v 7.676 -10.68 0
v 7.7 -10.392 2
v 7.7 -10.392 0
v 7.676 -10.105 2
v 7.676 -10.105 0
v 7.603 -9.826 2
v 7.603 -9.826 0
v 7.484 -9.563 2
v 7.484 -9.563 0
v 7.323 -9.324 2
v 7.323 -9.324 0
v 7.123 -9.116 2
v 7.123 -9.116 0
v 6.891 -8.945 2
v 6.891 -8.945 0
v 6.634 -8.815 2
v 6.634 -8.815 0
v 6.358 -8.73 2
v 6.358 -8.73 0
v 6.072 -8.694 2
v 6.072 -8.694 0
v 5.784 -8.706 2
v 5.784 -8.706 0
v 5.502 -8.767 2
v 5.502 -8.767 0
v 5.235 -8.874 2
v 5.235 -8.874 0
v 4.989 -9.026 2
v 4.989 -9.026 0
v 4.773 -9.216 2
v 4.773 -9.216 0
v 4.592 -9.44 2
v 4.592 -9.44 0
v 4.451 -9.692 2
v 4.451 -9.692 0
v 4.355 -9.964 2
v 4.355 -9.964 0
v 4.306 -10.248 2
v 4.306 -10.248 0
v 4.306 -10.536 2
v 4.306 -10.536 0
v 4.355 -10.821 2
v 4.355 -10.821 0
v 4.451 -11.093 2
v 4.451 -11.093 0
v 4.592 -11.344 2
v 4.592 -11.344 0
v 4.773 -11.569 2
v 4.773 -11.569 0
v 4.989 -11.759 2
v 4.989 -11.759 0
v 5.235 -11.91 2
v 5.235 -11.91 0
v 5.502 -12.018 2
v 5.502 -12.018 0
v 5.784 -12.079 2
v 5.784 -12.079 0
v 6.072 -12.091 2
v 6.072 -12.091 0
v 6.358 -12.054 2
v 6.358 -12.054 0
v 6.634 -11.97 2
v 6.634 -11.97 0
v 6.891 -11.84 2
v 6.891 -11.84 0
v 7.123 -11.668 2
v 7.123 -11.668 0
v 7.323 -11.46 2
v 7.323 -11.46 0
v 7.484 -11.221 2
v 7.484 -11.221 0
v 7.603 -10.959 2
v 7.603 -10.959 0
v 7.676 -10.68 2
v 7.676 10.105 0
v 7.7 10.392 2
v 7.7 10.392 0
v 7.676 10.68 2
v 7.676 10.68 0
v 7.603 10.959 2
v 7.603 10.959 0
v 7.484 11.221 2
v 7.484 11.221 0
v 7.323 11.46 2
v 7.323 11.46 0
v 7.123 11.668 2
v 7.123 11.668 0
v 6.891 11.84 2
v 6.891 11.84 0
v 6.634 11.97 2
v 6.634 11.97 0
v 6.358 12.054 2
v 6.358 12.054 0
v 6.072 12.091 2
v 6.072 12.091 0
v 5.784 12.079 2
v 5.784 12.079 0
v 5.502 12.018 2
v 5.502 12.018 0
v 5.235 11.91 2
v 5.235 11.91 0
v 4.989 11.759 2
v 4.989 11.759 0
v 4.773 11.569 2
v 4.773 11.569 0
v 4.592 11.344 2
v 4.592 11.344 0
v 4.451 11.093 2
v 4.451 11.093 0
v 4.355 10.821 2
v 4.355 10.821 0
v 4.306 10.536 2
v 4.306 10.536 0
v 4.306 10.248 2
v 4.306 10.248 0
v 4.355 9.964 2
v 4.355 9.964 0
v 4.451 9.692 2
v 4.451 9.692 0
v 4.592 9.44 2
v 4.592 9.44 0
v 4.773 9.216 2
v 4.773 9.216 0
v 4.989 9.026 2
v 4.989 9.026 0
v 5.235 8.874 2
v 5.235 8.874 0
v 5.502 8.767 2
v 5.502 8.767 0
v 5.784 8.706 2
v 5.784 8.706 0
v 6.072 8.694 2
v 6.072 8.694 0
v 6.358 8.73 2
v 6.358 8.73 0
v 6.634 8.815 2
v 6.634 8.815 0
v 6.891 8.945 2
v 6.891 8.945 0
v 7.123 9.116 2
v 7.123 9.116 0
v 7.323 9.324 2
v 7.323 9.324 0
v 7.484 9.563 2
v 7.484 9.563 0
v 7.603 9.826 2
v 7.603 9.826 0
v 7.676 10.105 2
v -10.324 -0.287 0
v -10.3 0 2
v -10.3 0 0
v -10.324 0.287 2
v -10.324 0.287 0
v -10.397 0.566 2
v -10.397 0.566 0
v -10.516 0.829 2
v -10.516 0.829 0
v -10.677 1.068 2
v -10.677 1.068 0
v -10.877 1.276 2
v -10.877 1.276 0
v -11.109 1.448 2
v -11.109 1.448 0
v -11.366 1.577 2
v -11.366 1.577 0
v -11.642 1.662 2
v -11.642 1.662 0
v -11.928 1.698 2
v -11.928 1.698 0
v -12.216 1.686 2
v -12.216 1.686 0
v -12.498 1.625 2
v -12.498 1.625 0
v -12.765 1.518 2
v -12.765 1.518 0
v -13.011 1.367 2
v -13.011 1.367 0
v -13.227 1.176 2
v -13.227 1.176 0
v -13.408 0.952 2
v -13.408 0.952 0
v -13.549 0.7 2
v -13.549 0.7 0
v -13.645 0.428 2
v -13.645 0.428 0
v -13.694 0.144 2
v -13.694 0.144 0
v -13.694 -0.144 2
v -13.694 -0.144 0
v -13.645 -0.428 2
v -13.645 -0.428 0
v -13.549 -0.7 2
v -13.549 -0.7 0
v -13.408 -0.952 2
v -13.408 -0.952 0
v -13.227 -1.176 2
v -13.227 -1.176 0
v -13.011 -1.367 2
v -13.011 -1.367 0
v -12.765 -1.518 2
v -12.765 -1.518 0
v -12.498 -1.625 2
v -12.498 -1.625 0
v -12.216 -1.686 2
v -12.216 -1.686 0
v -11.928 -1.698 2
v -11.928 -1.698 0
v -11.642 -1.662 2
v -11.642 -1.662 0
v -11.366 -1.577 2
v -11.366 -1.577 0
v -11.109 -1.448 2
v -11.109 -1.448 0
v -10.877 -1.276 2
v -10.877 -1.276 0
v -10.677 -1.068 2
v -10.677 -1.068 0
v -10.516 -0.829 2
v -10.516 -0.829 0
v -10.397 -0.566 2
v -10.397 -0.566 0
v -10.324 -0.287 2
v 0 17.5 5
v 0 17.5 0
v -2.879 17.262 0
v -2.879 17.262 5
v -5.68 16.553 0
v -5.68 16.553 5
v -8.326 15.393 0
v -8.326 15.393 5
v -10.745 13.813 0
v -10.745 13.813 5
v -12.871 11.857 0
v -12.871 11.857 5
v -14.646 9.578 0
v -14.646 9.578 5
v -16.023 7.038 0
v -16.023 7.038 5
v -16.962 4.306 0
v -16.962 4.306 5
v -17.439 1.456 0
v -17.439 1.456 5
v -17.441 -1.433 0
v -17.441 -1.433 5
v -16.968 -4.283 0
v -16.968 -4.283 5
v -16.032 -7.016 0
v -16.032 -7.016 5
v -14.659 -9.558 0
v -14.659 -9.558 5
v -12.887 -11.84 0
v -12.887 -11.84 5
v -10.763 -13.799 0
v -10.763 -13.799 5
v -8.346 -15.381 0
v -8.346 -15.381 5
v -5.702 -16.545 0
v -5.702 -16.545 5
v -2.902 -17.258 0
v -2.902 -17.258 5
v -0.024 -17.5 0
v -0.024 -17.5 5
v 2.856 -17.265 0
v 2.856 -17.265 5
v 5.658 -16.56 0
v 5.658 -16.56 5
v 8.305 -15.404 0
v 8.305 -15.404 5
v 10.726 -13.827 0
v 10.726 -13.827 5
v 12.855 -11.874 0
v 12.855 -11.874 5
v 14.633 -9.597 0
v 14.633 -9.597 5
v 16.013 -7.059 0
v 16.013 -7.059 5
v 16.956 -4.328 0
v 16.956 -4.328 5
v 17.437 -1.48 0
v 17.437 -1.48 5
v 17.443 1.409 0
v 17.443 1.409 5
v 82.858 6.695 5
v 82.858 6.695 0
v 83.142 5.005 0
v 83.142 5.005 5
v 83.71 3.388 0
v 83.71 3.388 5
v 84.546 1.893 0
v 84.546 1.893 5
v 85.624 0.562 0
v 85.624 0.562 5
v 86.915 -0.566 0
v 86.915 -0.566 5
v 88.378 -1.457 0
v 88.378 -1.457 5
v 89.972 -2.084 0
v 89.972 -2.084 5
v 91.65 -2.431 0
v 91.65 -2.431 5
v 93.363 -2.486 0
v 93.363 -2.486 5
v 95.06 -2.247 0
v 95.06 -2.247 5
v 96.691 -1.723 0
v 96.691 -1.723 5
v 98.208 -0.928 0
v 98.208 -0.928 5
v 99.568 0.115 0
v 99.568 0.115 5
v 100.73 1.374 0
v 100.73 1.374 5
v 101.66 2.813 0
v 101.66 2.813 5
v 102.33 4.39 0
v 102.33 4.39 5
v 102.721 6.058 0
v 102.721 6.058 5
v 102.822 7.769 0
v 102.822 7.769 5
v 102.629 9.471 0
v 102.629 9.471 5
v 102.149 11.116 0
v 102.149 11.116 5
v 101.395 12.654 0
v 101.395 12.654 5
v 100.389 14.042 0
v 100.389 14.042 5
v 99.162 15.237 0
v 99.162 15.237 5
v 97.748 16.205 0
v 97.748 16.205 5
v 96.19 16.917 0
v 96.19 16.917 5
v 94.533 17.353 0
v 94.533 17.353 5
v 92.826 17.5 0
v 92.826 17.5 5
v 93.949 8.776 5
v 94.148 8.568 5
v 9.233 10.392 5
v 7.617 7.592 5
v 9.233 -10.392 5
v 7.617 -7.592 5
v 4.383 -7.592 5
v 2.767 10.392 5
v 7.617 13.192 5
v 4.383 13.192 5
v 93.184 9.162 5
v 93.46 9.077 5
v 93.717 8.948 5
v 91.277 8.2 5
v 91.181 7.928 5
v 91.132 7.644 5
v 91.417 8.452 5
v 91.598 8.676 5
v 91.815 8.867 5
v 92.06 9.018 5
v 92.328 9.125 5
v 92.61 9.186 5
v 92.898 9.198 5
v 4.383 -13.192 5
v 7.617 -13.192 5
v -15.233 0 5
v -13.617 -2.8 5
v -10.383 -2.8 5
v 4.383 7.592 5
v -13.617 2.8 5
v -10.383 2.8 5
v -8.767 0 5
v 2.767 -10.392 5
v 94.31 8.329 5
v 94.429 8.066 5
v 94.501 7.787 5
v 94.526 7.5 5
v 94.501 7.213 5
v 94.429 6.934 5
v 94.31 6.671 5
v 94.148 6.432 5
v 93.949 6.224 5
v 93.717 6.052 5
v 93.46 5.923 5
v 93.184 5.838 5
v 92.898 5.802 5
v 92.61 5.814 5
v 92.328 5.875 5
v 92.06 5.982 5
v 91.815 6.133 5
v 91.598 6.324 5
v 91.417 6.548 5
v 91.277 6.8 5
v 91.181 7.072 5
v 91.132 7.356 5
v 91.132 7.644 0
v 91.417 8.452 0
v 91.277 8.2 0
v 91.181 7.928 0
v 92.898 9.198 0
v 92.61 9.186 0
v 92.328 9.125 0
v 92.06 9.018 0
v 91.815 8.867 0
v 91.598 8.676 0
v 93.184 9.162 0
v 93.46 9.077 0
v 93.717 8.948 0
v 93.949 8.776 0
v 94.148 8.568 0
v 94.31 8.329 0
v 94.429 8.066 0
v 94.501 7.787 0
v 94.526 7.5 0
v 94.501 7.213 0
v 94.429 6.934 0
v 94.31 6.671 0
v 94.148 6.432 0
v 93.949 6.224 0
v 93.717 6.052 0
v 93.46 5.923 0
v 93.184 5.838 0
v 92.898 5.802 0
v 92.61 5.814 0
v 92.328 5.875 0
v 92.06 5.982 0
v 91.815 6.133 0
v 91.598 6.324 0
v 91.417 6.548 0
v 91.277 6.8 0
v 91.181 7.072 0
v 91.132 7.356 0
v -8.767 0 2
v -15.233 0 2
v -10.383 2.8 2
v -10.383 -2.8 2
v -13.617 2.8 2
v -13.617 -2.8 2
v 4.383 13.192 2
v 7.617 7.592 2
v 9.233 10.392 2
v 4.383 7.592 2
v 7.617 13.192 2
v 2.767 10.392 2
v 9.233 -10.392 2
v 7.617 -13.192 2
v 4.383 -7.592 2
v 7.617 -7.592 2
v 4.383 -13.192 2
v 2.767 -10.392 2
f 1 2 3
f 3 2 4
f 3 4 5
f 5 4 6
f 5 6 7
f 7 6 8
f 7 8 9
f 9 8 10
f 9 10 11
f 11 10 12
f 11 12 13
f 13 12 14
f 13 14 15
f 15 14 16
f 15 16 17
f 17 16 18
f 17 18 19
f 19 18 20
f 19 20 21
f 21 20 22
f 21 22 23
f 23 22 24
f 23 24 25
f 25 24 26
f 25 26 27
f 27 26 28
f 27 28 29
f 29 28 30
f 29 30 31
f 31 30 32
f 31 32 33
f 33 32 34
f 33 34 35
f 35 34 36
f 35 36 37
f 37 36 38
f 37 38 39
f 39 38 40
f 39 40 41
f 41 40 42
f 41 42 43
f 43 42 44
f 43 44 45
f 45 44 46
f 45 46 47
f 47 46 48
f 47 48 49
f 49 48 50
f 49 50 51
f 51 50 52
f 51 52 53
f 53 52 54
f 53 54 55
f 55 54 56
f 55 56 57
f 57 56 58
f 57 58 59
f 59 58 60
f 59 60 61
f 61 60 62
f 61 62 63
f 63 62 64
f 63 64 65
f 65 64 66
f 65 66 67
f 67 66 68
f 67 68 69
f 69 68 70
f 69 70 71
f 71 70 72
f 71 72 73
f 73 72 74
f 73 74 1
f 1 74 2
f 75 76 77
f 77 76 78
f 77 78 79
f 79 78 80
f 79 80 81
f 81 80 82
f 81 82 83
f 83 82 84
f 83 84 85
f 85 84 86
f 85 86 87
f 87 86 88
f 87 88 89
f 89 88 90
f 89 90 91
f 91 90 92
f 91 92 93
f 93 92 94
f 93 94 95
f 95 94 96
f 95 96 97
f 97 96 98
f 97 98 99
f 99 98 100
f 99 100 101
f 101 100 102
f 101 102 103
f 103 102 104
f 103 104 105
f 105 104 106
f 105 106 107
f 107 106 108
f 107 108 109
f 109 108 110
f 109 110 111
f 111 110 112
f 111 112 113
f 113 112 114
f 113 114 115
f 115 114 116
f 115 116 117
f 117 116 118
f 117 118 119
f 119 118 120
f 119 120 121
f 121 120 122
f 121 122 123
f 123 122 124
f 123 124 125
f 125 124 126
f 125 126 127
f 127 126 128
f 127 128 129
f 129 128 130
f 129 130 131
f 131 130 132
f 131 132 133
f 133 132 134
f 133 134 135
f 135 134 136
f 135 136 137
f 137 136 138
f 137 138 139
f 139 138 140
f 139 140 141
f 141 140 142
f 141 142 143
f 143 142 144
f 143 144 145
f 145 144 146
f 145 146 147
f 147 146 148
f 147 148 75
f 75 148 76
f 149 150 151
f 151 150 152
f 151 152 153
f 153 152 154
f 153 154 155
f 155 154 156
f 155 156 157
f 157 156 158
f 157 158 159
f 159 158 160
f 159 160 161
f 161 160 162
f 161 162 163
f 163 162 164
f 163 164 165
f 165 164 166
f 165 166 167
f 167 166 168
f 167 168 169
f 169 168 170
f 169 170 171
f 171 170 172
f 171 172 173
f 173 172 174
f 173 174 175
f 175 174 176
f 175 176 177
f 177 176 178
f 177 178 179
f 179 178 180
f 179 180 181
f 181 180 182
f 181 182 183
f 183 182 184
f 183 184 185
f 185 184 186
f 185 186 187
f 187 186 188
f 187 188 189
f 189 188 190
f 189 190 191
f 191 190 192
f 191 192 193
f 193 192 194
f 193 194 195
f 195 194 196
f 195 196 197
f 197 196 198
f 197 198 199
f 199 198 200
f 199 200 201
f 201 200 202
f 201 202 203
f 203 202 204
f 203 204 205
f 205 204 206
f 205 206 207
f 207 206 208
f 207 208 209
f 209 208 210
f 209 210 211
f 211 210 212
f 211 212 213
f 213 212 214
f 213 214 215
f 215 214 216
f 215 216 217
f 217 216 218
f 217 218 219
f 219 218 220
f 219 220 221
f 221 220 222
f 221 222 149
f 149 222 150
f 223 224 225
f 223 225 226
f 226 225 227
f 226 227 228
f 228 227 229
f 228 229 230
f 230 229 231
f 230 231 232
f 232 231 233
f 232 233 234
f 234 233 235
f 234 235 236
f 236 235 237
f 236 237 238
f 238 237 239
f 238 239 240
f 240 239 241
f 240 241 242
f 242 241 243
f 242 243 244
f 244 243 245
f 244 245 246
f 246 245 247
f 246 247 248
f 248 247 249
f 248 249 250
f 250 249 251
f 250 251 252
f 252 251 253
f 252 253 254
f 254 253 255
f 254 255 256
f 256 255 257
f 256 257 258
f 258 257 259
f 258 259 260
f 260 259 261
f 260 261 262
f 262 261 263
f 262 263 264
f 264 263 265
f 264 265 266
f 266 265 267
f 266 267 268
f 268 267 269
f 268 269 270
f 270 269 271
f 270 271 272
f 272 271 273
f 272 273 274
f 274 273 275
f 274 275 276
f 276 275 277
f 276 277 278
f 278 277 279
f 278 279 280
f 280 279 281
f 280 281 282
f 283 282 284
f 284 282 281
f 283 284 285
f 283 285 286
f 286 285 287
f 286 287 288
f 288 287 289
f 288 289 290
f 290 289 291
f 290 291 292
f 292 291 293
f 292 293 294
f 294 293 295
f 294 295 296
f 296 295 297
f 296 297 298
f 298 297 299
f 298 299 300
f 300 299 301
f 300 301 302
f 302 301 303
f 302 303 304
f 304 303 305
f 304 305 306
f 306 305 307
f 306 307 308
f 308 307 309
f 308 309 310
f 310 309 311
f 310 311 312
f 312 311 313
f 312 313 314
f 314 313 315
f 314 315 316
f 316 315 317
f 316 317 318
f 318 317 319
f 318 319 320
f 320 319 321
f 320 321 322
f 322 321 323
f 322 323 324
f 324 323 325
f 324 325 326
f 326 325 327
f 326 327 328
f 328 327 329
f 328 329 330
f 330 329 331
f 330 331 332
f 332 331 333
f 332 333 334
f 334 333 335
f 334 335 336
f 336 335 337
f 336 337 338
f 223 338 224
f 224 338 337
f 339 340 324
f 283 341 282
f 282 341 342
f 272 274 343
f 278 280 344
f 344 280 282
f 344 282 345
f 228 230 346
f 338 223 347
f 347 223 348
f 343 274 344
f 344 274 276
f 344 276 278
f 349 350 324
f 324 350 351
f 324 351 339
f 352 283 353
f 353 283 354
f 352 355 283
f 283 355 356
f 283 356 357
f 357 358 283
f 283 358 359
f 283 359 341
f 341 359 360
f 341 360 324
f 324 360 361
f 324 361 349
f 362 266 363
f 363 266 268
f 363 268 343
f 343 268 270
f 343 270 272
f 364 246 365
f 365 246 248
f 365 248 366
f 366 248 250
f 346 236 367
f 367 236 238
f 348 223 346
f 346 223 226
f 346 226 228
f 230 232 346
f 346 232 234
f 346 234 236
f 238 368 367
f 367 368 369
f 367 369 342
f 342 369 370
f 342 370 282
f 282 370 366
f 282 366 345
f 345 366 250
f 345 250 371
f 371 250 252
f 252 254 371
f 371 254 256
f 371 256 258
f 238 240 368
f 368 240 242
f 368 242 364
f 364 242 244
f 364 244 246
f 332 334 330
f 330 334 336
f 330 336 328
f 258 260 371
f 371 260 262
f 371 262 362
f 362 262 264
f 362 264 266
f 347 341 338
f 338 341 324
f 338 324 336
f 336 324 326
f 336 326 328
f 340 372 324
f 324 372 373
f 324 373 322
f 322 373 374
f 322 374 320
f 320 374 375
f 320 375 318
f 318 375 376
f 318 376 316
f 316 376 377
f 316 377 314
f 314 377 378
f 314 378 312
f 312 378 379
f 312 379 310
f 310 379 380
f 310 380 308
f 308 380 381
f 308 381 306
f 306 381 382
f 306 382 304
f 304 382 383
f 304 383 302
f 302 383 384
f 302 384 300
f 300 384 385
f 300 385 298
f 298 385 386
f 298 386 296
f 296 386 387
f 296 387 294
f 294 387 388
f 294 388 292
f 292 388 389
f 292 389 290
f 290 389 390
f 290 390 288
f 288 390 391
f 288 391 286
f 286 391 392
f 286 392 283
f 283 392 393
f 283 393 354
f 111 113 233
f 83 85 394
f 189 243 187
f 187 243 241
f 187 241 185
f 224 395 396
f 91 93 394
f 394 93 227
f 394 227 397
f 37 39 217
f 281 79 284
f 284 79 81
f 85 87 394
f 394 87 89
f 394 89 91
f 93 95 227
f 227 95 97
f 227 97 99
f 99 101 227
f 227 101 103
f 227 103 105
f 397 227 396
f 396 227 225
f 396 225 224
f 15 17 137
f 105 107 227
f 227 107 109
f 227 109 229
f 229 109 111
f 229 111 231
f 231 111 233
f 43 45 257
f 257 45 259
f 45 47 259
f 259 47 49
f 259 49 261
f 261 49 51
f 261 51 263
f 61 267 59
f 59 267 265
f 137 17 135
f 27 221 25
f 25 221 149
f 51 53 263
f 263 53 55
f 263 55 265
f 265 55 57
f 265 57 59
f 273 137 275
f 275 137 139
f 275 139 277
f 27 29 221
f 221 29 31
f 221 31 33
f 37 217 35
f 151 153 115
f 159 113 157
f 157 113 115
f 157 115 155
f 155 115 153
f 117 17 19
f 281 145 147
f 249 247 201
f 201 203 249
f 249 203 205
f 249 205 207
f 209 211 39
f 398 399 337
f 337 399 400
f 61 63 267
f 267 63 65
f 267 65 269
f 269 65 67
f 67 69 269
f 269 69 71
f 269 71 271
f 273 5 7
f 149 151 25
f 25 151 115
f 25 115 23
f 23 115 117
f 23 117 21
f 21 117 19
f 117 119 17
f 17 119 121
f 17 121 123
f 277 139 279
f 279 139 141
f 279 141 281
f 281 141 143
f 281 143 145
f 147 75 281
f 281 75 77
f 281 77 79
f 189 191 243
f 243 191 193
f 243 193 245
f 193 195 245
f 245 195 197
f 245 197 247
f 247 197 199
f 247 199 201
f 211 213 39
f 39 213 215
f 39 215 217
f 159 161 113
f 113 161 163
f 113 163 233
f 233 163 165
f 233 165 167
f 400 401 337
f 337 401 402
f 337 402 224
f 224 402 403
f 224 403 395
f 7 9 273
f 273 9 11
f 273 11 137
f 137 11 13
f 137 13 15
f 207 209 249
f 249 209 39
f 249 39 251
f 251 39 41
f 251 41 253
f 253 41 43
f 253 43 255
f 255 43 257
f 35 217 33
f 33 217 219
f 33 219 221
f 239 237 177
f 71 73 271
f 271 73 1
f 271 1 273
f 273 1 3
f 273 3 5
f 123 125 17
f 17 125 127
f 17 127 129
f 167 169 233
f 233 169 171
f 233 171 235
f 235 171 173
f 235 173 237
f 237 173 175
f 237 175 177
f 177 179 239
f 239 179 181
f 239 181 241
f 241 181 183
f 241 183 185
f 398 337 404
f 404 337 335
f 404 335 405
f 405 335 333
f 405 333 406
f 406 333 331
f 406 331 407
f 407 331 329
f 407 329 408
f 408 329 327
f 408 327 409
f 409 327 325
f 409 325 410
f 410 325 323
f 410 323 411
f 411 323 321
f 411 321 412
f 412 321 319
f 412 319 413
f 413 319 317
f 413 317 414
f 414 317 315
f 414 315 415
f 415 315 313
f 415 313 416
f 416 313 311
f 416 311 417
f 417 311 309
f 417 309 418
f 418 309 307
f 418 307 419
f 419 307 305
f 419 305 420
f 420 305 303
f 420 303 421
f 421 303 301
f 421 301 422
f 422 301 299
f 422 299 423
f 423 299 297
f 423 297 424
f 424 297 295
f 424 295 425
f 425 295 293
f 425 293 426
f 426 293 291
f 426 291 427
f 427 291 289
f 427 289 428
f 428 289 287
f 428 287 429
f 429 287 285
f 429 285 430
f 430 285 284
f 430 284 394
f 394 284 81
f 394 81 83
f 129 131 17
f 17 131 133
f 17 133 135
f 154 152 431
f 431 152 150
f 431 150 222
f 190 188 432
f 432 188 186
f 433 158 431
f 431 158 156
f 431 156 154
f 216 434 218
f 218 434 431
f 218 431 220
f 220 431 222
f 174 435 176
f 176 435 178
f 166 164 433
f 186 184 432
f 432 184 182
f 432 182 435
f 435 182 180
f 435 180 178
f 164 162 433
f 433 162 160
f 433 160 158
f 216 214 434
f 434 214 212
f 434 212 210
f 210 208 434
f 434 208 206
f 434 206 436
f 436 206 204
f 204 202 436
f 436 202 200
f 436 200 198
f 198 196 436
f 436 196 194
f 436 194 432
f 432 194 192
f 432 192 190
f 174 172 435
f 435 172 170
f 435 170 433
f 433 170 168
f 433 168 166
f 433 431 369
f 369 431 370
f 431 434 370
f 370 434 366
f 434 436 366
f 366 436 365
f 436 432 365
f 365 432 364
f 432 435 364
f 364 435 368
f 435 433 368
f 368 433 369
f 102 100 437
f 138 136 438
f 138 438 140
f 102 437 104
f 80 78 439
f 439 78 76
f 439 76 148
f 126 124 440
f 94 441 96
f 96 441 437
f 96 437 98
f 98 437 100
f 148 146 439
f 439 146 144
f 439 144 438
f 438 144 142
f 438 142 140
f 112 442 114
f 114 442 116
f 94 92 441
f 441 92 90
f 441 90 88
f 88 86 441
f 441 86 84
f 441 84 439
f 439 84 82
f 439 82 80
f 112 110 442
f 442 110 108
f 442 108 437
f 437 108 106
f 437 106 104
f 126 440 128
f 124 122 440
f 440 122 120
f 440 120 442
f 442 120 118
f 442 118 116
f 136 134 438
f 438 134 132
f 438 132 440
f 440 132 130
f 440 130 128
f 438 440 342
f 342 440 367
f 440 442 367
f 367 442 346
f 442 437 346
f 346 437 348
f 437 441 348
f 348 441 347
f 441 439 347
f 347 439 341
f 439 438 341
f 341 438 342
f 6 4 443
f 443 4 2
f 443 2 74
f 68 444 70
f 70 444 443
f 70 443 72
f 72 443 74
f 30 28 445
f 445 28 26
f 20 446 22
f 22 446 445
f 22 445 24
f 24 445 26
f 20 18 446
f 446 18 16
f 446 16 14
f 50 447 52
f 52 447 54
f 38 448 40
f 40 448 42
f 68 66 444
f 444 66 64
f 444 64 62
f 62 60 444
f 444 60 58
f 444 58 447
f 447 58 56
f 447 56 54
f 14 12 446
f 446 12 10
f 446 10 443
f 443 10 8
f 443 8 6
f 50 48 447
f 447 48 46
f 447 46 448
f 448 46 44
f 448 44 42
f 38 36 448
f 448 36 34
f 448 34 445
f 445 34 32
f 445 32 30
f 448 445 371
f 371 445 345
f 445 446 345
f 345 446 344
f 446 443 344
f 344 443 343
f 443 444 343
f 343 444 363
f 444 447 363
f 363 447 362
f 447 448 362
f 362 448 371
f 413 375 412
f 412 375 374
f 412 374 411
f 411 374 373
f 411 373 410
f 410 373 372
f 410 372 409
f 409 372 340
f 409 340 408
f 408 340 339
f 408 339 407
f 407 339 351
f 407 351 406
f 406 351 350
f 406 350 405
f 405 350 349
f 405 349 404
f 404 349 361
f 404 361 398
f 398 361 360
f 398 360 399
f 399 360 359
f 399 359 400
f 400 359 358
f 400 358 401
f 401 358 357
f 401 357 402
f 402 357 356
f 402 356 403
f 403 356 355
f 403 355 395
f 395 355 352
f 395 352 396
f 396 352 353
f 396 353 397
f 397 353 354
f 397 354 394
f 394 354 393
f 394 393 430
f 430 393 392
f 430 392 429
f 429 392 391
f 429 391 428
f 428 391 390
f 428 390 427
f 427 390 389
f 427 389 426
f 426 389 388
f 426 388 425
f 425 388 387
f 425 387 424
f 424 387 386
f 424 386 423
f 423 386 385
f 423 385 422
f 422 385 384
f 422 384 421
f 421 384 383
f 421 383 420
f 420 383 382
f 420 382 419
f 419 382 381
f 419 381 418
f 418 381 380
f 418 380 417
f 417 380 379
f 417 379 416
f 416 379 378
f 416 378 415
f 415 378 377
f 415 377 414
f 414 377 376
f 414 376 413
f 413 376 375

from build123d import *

# Parameters (mm, degrees)
BOSS_EXTRUDE1_DEPTH  = 5
M3_CLEARANCE_HOLE1_D = 3.4
CUT_EXTRUDE1_DEPTH   = 3
CIRPATTERN1_COUNT    = 3
M3_CLEARANCE_HOLE2_D = 3.4


with BuildPart() as part:
    # Sketch1 → Boss-Extrude1 (new body)
    with BuildSketch(Plane.XY):
        with BuildLine():
            Line((0, 17.5), (92.825687176, 17.5))
            ThreePointArc((92.825687176, 17.5), (100.175973433, 0.719639248), (82.858168684, 6.694658386))
            Line((82.858168684, 6.694658386), (17.443157361, 1.409347824))
            ThreePointArc((17.443157361, 1.409347824), (-11.865631317, -12.863000951), (0, 17.5))
        make_face()
    extrude(amount=BOSS_EXTRUDE1_DEPTH)

    # M3 Clearance Hole1 (through all)
    with Locations(Plane.XY.offset(5)):
        with Locations((-12, 0)):
            m3_clearance_hole1 = Hole(M3_CLEARANCE_HOLE1_D / 2)

    # Sketch8 → Cut-Extrude1 (cut)
    with BuildSketch(Plane.XY.offset(5)):
        Polygon((-10.383419246, 2.8), (-13.616580754, 2.8), (-15.233161507, 0), (-13.616580754, -2.8), (-10.383419246, -2.8), (-8.766838493, 0), align=None)
    cut_extrude1 = extrude(amount=-CUT_EXTRUDE1_DEPTH, mode=Mode.SUBTRACT)

    # CirPattern1: M3 Clearance Hole1, Cut-Extrude1 ×3 about axis
    cirpattern1_axis = Axis((0, 0, 0), (0, 0, 1))
    add([m3_clearance_hole1.rotate(cirpattern1_axis, i * 360 / CIRPATTERN1_COUNT) for i in range(1, CIRPATTERN1_COUNT)], mode=Mode.SUBTRACT)
    add([cut_extrude1.rotate(cirpattern1_axis, i * 360 / CIRPATTERN1_COUNT) for i in range(1, CIRPATTERN1_COUNT)], mode=Mode.SUBTRACT)

    # M3 Clearance Hole2 (through all)
    with Locations(Plane.XY.offset(5)):
        with Locations((92.825687176, 7.5)):
            Hole(M3_CLEARANCE_HOLE2_D / 2)


solid = part.part
